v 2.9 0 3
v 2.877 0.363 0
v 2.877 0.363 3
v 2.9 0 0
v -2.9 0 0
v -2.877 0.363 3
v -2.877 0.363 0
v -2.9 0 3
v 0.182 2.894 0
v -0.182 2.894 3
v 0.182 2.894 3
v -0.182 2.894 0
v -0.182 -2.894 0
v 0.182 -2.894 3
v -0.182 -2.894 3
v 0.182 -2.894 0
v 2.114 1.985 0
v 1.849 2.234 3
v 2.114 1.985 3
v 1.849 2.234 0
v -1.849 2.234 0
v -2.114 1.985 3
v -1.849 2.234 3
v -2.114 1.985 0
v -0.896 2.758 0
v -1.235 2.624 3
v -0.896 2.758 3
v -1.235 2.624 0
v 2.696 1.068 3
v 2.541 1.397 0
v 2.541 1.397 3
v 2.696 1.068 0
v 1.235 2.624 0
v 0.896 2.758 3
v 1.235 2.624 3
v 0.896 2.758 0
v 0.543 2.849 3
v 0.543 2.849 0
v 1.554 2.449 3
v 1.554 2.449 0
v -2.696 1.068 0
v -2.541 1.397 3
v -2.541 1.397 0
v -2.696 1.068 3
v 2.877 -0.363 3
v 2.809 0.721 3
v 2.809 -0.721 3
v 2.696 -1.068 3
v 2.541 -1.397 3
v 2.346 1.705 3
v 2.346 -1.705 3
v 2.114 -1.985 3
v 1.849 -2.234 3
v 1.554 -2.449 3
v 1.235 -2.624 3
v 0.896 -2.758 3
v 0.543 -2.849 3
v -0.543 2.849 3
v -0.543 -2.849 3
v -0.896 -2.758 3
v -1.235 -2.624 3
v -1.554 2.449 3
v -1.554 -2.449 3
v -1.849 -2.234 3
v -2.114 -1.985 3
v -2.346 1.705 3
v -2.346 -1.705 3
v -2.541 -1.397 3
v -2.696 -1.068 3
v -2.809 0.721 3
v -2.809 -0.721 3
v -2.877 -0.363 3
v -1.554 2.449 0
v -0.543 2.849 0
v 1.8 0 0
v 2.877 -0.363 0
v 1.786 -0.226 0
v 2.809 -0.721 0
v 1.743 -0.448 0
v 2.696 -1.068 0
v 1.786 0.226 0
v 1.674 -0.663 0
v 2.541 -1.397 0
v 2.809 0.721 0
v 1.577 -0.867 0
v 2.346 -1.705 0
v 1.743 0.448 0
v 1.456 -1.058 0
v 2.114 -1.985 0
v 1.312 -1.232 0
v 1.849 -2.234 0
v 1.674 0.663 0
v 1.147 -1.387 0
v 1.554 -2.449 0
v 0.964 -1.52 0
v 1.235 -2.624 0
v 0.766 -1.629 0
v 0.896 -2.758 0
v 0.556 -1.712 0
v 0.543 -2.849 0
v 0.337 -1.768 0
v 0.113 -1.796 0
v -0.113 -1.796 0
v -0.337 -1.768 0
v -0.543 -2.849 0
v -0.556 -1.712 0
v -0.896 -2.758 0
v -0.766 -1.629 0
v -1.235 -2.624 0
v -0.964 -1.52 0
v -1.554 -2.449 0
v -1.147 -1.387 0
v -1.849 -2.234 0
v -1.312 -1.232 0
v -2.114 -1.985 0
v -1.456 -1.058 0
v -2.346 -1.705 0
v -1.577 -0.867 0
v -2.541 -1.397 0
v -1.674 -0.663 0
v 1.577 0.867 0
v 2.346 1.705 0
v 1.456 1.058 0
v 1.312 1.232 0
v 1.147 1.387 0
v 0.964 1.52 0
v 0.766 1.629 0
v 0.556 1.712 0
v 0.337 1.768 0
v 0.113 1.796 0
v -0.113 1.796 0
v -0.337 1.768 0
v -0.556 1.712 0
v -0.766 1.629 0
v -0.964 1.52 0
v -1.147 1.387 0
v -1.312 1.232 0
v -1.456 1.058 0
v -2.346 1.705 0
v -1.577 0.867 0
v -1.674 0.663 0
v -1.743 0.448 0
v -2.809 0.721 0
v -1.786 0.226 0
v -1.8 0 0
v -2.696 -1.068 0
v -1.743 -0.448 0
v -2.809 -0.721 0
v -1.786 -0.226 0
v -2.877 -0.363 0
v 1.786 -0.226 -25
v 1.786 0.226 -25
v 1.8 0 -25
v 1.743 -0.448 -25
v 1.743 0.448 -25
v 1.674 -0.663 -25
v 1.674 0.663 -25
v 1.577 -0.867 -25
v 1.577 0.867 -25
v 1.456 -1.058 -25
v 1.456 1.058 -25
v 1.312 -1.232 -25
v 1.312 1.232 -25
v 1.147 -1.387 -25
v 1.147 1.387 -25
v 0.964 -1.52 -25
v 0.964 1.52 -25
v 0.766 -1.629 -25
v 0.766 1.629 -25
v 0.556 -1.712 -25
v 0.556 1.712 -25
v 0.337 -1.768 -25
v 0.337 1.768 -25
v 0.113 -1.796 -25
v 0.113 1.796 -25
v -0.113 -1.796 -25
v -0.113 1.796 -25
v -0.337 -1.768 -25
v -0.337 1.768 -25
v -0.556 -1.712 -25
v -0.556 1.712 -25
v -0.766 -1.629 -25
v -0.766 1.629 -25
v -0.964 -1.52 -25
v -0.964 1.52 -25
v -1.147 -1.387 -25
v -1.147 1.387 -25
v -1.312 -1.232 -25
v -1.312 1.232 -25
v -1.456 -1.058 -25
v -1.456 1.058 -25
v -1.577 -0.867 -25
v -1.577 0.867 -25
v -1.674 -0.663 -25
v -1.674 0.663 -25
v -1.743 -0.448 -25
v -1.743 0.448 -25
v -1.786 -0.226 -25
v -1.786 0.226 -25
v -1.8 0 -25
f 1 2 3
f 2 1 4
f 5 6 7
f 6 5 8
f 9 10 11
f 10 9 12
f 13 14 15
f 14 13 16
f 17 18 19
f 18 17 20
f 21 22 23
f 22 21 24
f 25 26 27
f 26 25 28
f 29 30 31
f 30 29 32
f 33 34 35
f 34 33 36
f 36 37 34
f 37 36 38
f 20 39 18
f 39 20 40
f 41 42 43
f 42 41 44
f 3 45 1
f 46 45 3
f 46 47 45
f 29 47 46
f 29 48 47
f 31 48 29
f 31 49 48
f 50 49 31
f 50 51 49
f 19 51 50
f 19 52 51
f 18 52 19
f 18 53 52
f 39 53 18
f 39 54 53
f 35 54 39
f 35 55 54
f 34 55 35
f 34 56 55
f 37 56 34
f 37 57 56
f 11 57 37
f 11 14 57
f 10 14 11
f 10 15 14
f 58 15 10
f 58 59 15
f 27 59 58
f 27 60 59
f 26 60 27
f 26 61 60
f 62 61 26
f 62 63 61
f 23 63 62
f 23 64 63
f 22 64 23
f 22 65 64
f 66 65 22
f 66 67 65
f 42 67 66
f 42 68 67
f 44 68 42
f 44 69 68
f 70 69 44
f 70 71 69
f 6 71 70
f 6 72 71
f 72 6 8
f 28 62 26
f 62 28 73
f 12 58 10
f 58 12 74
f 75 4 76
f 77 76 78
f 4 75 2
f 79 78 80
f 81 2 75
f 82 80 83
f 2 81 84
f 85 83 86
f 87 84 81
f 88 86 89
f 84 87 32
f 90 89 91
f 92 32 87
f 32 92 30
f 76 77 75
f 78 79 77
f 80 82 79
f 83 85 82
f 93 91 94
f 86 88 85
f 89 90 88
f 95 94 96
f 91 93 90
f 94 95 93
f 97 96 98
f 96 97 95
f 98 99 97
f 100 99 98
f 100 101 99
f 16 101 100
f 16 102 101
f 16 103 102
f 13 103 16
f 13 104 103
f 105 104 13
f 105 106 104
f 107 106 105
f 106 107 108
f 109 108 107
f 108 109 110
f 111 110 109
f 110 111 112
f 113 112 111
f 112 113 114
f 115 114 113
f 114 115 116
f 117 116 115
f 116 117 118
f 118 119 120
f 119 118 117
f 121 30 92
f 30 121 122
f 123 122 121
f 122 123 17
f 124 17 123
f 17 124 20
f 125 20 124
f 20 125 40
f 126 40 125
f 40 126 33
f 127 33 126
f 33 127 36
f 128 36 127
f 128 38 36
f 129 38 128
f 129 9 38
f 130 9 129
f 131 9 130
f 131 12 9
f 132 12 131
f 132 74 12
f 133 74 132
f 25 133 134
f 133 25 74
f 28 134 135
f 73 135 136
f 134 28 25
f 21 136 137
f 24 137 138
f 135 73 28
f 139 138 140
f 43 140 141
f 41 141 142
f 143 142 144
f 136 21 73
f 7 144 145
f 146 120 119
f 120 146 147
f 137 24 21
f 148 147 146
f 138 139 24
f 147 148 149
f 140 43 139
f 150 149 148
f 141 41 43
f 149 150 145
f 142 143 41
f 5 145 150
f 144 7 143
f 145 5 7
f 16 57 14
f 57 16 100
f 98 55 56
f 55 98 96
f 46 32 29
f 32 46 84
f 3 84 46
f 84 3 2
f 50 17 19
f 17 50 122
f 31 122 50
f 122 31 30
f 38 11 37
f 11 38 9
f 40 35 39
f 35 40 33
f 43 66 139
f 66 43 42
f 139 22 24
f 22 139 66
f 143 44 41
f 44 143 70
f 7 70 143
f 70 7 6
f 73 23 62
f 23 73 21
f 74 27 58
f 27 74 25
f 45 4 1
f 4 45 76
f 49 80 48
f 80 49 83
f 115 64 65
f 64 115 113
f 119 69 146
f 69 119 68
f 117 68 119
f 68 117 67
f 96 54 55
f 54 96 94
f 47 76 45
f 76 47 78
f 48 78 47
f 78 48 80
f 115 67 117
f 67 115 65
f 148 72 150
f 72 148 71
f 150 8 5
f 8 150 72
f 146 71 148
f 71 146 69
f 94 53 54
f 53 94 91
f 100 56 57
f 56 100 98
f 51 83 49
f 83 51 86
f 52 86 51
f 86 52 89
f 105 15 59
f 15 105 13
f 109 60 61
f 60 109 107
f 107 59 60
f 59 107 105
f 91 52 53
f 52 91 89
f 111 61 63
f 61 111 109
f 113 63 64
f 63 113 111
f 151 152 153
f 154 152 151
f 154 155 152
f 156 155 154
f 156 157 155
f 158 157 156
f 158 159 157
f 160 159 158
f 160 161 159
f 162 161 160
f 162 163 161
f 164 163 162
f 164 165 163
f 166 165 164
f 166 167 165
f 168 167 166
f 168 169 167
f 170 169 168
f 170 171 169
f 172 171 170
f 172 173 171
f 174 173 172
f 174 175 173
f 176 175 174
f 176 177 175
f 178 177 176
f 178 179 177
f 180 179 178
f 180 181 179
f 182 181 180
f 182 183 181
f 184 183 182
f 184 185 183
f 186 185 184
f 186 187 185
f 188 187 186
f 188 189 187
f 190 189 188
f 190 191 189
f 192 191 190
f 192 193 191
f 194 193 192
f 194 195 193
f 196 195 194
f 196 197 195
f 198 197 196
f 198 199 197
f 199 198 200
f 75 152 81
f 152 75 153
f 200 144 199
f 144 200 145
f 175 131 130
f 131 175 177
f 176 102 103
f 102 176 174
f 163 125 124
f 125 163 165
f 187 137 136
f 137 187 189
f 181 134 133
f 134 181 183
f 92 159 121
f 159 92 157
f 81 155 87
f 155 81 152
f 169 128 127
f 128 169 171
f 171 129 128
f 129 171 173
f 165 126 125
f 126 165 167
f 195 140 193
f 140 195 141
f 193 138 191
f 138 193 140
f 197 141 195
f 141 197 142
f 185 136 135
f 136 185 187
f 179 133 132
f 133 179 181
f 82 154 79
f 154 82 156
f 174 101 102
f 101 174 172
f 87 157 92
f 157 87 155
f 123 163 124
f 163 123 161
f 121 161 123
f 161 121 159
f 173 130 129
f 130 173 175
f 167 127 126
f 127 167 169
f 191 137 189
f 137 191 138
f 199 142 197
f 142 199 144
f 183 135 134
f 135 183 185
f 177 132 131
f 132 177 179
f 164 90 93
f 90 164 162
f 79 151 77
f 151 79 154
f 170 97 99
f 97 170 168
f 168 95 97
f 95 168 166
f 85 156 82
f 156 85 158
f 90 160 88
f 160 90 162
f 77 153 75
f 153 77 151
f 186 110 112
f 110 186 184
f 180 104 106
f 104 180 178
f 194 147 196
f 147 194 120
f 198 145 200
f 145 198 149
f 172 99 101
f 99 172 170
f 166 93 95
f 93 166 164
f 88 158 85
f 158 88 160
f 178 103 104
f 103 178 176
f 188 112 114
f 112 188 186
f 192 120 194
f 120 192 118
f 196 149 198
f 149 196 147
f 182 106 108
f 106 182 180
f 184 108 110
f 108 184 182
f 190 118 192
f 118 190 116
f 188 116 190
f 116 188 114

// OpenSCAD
$fn = 50;


difference() {
	union() {
		translate(v = [0, 0, 0]) {
			rotate(a = [0, 0, 0]) {
				difference() {
					union() {
						cylinder(h = 3, r = 2.9000000000);
						translate(v = [0, 0, -25.0000000000]) {
							cylinder(h = 25, r = 1.5000000000);
						}
						translate(v = [0, 0, -25.0000000000]) {
							cylinder(h = 25, r = 1.8000000000);
						}
						translate(v = [0, 0, -25.0000000000]) {
							cylinder(h = 25, r = 1.5000000000);
						}
					}
					union();
				}
			}
		}
	}
	union();
}
